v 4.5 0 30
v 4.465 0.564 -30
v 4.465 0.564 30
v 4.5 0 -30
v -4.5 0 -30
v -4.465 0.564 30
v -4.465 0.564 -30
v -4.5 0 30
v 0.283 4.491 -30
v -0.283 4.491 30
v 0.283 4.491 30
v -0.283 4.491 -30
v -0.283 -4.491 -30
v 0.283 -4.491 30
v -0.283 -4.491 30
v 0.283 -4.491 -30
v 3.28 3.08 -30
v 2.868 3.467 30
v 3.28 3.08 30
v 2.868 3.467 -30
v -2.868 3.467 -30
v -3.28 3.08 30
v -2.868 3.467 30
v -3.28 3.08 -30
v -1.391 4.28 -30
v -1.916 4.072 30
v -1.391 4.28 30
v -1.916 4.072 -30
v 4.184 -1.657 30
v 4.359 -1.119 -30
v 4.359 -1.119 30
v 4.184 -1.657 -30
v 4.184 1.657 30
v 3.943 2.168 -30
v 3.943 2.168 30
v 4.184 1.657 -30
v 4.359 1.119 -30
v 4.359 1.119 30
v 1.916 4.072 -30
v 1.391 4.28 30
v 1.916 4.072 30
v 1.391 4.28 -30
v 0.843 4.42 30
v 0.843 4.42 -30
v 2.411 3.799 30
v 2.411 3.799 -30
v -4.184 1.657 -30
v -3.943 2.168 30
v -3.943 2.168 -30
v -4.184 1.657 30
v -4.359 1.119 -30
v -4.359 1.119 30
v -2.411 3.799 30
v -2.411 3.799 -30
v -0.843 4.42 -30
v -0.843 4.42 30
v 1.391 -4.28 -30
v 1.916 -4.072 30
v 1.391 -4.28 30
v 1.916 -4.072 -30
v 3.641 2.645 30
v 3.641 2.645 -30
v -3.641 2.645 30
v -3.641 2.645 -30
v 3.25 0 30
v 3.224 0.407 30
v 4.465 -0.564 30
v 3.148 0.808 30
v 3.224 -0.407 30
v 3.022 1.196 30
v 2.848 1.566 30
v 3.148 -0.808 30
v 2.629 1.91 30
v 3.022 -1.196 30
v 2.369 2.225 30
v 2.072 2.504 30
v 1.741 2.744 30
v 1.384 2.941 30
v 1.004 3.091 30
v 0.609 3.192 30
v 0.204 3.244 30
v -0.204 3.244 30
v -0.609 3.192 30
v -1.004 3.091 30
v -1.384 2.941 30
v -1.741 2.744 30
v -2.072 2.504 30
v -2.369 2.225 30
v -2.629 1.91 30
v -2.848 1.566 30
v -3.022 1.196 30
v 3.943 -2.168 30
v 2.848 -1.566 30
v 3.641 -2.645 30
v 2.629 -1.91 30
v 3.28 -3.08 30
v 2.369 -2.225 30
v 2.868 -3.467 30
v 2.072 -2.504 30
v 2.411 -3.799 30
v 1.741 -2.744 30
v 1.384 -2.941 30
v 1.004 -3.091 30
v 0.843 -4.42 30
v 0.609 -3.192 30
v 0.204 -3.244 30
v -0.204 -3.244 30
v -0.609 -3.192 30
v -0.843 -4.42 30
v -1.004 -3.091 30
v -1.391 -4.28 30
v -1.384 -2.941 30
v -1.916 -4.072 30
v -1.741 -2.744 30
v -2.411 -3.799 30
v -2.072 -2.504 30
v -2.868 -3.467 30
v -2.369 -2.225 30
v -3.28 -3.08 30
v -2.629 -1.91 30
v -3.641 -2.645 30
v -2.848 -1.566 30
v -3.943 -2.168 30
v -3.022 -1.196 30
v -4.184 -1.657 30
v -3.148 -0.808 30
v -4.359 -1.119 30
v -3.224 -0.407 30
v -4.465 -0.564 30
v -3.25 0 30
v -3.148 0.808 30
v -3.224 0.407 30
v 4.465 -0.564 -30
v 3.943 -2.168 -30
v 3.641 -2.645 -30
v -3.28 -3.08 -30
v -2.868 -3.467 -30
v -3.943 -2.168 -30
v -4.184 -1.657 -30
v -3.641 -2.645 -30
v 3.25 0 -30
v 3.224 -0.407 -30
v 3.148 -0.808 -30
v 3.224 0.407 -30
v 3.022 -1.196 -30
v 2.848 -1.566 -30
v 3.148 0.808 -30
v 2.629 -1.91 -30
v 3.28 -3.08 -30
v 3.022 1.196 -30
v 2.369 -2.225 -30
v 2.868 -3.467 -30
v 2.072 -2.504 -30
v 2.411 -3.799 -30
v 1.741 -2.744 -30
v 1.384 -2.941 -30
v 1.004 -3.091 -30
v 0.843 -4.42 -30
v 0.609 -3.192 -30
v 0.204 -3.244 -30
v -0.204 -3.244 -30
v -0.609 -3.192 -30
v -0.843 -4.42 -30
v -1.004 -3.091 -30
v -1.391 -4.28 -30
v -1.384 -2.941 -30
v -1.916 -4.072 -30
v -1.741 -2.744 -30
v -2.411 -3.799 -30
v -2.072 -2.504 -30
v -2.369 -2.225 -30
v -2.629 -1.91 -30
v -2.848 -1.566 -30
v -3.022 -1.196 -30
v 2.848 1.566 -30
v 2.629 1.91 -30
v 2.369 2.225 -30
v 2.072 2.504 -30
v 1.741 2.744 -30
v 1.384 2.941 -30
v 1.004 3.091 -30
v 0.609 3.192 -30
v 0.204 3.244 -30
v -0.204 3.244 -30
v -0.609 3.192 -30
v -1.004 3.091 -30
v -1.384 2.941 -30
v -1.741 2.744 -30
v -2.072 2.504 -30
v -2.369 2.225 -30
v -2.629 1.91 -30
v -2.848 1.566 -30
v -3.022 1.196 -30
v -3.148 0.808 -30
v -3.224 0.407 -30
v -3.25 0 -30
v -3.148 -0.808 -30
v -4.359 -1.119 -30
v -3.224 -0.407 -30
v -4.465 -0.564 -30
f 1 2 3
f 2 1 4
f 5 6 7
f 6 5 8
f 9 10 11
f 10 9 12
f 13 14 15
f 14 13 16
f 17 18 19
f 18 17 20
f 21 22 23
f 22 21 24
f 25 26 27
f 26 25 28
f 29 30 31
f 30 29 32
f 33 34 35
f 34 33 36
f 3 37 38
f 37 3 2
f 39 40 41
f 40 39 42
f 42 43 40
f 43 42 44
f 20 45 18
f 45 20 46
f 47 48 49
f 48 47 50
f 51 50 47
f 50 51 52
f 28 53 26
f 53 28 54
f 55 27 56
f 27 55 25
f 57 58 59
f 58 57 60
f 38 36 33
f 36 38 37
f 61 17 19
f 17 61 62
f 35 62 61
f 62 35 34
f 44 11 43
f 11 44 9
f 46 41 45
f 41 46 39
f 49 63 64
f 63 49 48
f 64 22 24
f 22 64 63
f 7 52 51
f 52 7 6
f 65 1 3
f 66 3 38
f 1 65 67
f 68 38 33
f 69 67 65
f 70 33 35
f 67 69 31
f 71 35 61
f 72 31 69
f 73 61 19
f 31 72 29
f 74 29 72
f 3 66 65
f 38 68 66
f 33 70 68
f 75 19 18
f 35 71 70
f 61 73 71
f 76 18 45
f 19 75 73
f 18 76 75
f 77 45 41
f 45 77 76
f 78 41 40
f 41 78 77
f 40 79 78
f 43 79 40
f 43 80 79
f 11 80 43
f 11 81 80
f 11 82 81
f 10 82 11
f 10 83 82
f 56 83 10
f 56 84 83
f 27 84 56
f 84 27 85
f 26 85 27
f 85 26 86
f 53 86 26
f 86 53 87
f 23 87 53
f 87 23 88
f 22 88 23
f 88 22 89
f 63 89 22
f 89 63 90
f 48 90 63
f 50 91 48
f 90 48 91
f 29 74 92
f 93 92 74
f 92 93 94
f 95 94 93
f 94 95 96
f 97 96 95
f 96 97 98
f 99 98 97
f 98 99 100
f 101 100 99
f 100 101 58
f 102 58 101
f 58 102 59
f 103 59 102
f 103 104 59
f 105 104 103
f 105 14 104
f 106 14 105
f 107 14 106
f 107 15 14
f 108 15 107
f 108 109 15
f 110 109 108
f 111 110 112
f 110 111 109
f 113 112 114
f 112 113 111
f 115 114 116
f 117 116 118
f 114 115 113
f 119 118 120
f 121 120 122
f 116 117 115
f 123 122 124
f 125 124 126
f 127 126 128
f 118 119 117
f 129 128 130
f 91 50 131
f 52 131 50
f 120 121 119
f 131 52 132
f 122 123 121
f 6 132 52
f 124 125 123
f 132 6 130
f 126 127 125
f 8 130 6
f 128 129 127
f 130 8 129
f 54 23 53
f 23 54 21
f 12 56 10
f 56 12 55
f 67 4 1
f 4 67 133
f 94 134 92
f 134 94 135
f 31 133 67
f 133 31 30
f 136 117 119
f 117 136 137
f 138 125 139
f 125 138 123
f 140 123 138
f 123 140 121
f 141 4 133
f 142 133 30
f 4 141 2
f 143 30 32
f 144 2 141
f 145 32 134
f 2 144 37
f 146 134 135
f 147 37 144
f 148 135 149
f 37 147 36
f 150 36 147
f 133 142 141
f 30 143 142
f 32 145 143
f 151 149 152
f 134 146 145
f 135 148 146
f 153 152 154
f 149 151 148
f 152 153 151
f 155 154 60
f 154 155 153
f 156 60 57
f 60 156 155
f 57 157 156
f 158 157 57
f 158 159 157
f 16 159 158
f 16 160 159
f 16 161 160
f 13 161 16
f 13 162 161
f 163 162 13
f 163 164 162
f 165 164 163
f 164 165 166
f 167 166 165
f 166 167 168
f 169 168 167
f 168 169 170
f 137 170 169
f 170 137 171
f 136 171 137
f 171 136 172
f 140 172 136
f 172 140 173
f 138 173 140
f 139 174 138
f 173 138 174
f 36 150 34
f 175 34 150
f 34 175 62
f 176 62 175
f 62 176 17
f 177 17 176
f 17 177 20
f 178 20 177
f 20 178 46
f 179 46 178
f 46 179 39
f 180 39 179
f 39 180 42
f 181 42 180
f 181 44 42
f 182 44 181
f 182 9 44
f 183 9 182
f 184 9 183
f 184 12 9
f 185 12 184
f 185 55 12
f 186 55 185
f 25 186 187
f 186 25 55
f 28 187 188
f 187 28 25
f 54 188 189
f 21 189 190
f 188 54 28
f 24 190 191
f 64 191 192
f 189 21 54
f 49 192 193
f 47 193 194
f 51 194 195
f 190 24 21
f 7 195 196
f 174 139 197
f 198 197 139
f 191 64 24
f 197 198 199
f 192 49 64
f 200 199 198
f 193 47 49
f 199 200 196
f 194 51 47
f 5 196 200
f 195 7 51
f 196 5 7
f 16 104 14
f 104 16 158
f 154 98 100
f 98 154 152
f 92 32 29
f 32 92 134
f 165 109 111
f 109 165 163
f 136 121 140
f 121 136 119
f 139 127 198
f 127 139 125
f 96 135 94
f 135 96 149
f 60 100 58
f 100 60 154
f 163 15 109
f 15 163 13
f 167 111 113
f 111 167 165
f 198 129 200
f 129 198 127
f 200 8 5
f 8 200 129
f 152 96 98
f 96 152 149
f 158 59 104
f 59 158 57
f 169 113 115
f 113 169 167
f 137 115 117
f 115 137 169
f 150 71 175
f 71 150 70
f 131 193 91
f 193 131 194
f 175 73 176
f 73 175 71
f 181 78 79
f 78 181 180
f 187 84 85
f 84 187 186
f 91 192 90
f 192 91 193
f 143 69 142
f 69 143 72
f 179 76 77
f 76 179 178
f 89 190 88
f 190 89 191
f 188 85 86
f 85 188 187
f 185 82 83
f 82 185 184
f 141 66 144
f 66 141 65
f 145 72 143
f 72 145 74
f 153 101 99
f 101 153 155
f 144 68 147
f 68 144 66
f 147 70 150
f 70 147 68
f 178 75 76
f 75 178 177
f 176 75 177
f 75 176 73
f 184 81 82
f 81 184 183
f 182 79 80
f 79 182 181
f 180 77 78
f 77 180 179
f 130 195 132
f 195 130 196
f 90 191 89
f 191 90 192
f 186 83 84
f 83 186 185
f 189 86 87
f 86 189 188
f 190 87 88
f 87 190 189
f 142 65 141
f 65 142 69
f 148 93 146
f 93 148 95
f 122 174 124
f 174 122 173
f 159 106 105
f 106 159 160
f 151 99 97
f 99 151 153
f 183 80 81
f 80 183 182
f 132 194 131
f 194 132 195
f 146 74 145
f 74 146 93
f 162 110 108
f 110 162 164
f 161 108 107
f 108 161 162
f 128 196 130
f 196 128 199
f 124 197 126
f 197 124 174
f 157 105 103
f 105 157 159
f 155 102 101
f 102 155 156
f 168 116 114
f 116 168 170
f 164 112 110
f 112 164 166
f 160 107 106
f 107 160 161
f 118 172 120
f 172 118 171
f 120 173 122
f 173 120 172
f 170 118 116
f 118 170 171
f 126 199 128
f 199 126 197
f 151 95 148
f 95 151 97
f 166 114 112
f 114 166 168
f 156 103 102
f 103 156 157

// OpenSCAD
$fn = 50;


difference() {
	union() {
		translate(v = [0, 0, -30.0000000000]) {
			cylinder(h = 60, r = 4.5000000000);
		}
	}
	union() {
		translate(v = [0, 0, -100.0000000000]) {
			cylinder(h = 200, r = 3.2500000000);
		}
	}
}
